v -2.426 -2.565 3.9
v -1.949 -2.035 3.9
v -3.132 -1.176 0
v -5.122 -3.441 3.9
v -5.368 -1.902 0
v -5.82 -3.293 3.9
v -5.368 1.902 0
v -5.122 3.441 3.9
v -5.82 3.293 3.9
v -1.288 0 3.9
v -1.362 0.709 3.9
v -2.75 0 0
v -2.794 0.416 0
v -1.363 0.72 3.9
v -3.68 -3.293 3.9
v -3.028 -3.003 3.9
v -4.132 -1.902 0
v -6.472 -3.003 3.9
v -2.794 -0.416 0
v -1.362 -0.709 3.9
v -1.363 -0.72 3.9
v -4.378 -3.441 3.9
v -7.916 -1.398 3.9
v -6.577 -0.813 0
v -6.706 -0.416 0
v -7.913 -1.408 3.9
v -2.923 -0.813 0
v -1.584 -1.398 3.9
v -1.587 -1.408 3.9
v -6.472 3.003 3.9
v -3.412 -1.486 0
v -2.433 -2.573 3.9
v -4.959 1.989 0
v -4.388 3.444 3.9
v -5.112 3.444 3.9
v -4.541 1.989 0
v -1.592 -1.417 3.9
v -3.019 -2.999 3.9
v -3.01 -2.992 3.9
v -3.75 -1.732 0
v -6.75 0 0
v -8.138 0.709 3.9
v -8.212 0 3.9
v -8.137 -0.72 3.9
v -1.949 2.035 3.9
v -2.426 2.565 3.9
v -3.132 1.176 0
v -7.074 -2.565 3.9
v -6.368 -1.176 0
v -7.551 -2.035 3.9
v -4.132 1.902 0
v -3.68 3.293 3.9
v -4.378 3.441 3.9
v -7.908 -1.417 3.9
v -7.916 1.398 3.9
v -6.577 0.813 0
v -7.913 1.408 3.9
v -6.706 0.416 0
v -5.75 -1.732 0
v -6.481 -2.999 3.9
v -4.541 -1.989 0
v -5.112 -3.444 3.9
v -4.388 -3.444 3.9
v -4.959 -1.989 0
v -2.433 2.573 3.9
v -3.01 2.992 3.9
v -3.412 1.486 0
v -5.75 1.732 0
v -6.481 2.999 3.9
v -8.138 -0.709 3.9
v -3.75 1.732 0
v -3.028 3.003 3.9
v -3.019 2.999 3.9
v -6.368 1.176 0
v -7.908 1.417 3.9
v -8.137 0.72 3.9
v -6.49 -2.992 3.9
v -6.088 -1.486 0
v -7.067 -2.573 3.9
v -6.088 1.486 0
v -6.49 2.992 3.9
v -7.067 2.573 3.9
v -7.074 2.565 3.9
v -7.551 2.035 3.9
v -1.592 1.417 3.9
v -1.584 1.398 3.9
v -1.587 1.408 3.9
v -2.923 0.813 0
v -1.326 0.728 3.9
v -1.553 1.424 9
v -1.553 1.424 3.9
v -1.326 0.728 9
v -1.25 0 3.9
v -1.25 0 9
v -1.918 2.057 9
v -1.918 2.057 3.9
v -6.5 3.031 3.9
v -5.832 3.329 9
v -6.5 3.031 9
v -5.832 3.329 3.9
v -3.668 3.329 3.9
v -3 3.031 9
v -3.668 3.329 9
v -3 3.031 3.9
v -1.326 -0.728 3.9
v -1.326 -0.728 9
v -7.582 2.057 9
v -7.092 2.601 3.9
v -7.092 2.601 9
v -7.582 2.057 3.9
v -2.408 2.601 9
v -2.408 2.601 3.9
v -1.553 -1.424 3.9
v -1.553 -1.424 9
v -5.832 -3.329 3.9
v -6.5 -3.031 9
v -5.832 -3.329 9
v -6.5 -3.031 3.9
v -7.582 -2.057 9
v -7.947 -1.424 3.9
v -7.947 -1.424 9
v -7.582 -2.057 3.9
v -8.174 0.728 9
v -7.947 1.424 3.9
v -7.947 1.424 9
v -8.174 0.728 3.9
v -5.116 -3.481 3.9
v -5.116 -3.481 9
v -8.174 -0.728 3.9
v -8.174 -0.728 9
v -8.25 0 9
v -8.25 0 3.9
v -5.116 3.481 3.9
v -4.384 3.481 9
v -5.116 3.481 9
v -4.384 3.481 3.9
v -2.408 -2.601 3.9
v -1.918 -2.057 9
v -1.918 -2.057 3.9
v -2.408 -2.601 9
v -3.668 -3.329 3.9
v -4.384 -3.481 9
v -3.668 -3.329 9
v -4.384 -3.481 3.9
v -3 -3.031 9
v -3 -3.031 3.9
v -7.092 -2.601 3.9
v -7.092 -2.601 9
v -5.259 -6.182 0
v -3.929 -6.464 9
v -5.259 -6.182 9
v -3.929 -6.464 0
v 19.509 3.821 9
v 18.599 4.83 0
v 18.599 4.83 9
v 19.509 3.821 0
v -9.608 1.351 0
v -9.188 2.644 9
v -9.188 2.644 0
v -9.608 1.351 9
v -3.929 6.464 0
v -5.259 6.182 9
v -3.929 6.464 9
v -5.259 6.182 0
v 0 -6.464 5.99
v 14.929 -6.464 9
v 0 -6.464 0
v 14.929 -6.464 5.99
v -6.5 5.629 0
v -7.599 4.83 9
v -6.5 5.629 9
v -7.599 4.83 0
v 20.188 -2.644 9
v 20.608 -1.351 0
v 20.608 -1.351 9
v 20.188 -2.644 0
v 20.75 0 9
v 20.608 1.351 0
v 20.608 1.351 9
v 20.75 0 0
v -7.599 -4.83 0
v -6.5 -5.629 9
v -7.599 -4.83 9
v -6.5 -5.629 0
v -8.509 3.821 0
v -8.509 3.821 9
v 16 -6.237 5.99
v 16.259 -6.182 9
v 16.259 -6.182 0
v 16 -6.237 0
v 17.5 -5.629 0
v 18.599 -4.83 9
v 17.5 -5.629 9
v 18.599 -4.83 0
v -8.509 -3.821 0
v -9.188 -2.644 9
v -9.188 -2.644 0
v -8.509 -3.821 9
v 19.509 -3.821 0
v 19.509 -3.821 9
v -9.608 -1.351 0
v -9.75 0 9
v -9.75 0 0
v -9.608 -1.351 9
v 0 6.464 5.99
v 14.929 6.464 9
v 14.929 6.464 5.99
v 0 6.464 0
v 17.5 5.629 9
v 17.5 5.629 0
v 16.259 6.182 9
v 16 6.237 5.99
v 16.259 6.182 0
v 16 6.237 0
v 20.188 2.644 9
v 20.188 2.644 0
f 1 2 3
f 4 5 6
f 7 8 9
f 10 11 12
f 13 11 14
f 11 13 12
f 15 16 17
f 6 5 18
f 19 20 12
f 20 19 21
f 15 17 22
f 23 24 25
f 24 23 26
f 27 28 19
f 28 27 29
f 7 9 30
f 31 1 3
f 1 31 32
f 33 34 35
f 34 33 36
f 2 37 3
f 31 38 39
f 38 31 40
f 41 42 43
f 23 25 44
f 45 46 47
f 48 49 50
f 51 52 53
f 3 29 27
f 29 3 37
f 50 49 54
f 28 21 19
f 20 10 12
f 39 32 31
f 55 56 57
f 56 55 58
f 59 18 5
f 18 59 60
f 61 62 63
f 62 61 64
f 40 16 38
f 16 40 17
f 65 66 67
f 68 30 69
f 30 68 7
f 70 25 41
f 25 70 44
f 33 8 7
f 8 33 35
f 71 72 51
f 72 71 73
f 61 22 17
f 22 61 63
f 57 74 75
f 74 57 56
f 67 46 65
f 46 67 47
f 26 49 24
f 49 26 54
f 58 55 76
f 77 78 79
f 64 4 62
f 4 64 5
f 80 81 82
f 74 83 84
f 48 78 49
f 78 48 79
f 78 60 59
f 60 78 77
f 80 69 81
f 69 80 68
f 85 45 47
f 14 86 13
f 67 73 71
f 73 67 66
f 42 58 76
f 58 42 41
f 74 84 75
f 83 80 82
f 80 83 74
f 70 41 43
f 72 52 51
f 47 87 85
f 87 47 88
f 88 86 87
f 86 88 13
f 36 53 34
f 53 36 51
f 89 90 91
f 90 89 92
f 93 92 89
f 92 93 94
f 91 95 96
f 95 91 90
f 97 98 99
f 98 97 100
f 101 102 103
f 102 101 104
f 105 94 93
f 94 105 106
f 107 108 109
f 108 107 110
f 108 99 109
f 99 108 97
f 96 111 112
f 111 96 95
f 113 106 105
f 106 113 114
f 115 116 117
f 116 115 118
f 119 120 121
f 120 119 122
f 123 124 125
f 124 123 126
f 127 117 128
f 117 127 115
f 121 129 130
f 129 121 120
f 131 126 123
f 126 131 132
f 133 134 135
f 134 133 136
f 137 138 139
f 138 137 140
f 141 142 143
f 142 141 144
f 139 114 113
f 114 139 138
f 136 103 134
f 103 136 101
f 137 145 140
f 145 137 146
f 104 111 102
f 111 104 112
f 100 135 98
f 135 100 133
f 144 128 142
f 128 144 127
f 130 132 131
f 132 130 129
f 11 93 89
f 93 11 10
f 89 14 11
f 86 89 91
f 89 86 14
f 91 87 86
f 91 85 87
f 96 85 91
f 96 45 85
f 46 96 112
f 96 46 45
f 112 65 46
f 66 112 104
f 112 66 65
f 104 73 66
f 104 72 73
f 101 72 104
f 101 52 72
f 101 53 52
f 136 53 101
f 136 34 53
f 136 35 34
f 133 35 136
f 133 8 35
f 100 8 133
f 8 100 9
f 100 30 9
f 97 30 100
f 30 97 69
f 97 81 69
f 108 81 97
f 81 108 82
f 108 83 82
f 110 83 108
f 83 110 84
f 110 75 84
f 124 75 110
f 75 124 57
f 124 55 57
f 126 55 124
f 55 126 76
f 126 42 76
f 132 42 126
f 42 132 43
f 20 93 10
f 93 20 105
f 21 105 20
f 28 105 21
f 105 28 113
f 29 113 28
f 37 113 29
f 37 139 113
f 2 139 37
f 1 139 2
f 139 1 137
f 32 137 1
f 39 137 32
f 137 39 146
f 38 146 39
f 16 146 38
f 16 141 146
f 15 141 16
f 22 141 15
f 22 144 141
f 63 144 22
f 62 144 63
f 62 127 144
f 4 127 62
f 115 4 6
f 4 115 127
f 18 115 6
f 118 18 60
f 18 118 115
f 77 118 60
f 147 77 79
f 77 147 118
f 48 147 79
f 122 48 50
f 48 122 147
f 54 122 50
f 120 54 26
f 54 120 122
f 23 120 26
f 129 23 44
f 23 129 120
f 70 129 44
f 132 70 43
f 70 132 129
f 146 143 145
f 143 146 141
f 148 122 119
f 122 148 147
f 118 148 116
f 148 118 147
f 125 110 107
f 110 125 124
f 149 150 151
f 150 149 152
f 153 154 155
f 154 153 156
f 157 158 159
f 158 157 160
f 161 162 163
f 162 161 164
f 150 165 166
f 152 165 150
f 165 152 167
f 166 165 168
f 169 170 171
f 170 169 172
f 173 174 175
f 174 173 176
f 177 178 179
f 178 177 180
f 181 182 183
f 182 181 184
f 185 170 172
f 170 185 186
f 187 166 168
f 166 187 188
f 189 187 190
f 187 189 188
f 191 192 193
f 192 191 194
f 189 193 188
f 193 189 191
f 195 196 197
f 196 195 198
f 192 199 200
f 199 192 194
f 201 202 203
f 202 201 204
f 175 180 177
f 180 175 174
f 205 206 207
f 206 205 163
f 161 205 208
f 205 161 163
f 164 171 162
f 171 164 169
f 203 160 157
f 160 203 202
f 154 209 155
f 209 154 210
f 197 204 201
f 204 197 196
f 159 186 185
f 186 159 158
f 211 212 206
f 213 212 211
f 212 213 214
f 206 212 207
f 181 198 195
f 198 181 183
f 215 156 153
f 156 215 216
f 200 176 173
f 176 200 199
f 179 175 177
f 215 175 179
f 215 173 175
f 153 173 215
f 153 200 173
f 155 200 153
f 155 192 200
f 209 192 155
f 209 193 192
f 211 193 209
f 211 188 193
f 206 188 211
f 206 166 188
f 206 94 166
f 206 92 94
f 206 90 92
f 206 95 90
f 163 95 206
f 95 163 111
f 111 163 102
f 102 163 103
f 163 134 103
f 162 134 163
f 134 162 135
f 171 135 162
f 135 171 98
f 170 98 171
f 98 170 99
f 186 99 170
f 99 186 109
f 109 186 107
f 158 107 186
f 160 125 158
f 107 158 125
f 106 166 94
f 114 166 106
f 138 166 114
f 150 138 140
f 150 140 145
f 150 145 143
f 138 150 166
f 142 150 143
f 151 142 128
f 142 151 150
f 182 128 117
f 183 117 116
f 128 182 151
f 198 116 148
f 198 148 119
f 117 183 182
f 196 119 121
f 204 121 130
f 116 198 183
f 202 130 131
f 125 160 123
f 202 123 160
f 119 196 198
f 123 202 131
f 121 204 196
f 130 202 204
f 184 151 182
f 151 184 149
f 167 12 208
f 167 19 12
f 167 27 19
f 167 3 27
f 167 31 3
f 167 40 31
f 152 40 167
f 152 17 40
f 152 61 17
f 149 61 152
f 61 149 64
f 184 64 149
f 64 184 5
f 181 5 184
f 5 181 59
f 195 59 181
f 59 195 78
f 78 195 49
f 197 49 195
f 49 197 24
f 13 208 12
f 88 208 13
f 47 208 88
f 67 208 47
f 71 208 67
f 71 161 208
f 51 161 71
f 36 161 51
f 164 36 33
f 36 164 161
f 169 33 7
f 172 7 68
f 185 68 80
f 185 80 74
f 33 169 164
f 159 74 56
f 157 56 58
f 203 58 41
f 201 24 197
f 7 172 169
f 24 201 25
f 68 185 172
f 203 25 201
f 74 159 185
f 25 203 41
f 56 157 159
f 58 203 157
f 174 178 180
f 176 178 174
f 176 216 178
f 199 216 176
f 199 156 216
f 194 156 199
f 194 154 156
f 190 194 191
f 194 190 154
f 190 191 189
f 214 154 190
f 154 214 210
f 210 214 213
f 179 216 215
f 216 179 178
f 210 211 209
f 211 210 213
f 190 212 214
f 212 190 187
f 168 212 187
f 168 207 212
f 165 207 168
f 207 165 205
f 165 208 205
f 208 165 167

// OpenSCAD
led_width = 16;
led_height = 6;
screw_diam = 2;
screw_head = 3.5;
screw_head_height = 4;

thickness = 3;
radius_thickness = 3;
width = 10;
$fn = 30;

module holder() {
    translate([-0.5*(screw_head+radius_thickness), 0, 0])
    hull() {
        cylinder(h = led_height + thickness, r = screw_head+radius_thickness);

        translate([led_width+0.5*radius_thickness, 0, 0 ])
        cylinder(h = led_height + thickness, r = screw_head+radius_thickness);
    }
}

module screw() {
    cylinder(h = screw_head_height, r1 = screw_diam, r2 = screw_head);
    translate([0, 0, screw_head_height-0.1])
    cylinder(h = 2*screw_head_height, r = screw_head);
    translate([0, 0, -2*screw_head_height+0.1])
    cylinder(h = 2*screw_head_height, r = screw_diam);
}

module led() {
    translate([0, -5*led_width, -0.01])
    cube([led_width, 10*led_width, led_height]);
}

difference() {
    holder();
    led();

    translate([-0.5*screw_head-radius_thickness, 0, 0])
    screw();
    
}
